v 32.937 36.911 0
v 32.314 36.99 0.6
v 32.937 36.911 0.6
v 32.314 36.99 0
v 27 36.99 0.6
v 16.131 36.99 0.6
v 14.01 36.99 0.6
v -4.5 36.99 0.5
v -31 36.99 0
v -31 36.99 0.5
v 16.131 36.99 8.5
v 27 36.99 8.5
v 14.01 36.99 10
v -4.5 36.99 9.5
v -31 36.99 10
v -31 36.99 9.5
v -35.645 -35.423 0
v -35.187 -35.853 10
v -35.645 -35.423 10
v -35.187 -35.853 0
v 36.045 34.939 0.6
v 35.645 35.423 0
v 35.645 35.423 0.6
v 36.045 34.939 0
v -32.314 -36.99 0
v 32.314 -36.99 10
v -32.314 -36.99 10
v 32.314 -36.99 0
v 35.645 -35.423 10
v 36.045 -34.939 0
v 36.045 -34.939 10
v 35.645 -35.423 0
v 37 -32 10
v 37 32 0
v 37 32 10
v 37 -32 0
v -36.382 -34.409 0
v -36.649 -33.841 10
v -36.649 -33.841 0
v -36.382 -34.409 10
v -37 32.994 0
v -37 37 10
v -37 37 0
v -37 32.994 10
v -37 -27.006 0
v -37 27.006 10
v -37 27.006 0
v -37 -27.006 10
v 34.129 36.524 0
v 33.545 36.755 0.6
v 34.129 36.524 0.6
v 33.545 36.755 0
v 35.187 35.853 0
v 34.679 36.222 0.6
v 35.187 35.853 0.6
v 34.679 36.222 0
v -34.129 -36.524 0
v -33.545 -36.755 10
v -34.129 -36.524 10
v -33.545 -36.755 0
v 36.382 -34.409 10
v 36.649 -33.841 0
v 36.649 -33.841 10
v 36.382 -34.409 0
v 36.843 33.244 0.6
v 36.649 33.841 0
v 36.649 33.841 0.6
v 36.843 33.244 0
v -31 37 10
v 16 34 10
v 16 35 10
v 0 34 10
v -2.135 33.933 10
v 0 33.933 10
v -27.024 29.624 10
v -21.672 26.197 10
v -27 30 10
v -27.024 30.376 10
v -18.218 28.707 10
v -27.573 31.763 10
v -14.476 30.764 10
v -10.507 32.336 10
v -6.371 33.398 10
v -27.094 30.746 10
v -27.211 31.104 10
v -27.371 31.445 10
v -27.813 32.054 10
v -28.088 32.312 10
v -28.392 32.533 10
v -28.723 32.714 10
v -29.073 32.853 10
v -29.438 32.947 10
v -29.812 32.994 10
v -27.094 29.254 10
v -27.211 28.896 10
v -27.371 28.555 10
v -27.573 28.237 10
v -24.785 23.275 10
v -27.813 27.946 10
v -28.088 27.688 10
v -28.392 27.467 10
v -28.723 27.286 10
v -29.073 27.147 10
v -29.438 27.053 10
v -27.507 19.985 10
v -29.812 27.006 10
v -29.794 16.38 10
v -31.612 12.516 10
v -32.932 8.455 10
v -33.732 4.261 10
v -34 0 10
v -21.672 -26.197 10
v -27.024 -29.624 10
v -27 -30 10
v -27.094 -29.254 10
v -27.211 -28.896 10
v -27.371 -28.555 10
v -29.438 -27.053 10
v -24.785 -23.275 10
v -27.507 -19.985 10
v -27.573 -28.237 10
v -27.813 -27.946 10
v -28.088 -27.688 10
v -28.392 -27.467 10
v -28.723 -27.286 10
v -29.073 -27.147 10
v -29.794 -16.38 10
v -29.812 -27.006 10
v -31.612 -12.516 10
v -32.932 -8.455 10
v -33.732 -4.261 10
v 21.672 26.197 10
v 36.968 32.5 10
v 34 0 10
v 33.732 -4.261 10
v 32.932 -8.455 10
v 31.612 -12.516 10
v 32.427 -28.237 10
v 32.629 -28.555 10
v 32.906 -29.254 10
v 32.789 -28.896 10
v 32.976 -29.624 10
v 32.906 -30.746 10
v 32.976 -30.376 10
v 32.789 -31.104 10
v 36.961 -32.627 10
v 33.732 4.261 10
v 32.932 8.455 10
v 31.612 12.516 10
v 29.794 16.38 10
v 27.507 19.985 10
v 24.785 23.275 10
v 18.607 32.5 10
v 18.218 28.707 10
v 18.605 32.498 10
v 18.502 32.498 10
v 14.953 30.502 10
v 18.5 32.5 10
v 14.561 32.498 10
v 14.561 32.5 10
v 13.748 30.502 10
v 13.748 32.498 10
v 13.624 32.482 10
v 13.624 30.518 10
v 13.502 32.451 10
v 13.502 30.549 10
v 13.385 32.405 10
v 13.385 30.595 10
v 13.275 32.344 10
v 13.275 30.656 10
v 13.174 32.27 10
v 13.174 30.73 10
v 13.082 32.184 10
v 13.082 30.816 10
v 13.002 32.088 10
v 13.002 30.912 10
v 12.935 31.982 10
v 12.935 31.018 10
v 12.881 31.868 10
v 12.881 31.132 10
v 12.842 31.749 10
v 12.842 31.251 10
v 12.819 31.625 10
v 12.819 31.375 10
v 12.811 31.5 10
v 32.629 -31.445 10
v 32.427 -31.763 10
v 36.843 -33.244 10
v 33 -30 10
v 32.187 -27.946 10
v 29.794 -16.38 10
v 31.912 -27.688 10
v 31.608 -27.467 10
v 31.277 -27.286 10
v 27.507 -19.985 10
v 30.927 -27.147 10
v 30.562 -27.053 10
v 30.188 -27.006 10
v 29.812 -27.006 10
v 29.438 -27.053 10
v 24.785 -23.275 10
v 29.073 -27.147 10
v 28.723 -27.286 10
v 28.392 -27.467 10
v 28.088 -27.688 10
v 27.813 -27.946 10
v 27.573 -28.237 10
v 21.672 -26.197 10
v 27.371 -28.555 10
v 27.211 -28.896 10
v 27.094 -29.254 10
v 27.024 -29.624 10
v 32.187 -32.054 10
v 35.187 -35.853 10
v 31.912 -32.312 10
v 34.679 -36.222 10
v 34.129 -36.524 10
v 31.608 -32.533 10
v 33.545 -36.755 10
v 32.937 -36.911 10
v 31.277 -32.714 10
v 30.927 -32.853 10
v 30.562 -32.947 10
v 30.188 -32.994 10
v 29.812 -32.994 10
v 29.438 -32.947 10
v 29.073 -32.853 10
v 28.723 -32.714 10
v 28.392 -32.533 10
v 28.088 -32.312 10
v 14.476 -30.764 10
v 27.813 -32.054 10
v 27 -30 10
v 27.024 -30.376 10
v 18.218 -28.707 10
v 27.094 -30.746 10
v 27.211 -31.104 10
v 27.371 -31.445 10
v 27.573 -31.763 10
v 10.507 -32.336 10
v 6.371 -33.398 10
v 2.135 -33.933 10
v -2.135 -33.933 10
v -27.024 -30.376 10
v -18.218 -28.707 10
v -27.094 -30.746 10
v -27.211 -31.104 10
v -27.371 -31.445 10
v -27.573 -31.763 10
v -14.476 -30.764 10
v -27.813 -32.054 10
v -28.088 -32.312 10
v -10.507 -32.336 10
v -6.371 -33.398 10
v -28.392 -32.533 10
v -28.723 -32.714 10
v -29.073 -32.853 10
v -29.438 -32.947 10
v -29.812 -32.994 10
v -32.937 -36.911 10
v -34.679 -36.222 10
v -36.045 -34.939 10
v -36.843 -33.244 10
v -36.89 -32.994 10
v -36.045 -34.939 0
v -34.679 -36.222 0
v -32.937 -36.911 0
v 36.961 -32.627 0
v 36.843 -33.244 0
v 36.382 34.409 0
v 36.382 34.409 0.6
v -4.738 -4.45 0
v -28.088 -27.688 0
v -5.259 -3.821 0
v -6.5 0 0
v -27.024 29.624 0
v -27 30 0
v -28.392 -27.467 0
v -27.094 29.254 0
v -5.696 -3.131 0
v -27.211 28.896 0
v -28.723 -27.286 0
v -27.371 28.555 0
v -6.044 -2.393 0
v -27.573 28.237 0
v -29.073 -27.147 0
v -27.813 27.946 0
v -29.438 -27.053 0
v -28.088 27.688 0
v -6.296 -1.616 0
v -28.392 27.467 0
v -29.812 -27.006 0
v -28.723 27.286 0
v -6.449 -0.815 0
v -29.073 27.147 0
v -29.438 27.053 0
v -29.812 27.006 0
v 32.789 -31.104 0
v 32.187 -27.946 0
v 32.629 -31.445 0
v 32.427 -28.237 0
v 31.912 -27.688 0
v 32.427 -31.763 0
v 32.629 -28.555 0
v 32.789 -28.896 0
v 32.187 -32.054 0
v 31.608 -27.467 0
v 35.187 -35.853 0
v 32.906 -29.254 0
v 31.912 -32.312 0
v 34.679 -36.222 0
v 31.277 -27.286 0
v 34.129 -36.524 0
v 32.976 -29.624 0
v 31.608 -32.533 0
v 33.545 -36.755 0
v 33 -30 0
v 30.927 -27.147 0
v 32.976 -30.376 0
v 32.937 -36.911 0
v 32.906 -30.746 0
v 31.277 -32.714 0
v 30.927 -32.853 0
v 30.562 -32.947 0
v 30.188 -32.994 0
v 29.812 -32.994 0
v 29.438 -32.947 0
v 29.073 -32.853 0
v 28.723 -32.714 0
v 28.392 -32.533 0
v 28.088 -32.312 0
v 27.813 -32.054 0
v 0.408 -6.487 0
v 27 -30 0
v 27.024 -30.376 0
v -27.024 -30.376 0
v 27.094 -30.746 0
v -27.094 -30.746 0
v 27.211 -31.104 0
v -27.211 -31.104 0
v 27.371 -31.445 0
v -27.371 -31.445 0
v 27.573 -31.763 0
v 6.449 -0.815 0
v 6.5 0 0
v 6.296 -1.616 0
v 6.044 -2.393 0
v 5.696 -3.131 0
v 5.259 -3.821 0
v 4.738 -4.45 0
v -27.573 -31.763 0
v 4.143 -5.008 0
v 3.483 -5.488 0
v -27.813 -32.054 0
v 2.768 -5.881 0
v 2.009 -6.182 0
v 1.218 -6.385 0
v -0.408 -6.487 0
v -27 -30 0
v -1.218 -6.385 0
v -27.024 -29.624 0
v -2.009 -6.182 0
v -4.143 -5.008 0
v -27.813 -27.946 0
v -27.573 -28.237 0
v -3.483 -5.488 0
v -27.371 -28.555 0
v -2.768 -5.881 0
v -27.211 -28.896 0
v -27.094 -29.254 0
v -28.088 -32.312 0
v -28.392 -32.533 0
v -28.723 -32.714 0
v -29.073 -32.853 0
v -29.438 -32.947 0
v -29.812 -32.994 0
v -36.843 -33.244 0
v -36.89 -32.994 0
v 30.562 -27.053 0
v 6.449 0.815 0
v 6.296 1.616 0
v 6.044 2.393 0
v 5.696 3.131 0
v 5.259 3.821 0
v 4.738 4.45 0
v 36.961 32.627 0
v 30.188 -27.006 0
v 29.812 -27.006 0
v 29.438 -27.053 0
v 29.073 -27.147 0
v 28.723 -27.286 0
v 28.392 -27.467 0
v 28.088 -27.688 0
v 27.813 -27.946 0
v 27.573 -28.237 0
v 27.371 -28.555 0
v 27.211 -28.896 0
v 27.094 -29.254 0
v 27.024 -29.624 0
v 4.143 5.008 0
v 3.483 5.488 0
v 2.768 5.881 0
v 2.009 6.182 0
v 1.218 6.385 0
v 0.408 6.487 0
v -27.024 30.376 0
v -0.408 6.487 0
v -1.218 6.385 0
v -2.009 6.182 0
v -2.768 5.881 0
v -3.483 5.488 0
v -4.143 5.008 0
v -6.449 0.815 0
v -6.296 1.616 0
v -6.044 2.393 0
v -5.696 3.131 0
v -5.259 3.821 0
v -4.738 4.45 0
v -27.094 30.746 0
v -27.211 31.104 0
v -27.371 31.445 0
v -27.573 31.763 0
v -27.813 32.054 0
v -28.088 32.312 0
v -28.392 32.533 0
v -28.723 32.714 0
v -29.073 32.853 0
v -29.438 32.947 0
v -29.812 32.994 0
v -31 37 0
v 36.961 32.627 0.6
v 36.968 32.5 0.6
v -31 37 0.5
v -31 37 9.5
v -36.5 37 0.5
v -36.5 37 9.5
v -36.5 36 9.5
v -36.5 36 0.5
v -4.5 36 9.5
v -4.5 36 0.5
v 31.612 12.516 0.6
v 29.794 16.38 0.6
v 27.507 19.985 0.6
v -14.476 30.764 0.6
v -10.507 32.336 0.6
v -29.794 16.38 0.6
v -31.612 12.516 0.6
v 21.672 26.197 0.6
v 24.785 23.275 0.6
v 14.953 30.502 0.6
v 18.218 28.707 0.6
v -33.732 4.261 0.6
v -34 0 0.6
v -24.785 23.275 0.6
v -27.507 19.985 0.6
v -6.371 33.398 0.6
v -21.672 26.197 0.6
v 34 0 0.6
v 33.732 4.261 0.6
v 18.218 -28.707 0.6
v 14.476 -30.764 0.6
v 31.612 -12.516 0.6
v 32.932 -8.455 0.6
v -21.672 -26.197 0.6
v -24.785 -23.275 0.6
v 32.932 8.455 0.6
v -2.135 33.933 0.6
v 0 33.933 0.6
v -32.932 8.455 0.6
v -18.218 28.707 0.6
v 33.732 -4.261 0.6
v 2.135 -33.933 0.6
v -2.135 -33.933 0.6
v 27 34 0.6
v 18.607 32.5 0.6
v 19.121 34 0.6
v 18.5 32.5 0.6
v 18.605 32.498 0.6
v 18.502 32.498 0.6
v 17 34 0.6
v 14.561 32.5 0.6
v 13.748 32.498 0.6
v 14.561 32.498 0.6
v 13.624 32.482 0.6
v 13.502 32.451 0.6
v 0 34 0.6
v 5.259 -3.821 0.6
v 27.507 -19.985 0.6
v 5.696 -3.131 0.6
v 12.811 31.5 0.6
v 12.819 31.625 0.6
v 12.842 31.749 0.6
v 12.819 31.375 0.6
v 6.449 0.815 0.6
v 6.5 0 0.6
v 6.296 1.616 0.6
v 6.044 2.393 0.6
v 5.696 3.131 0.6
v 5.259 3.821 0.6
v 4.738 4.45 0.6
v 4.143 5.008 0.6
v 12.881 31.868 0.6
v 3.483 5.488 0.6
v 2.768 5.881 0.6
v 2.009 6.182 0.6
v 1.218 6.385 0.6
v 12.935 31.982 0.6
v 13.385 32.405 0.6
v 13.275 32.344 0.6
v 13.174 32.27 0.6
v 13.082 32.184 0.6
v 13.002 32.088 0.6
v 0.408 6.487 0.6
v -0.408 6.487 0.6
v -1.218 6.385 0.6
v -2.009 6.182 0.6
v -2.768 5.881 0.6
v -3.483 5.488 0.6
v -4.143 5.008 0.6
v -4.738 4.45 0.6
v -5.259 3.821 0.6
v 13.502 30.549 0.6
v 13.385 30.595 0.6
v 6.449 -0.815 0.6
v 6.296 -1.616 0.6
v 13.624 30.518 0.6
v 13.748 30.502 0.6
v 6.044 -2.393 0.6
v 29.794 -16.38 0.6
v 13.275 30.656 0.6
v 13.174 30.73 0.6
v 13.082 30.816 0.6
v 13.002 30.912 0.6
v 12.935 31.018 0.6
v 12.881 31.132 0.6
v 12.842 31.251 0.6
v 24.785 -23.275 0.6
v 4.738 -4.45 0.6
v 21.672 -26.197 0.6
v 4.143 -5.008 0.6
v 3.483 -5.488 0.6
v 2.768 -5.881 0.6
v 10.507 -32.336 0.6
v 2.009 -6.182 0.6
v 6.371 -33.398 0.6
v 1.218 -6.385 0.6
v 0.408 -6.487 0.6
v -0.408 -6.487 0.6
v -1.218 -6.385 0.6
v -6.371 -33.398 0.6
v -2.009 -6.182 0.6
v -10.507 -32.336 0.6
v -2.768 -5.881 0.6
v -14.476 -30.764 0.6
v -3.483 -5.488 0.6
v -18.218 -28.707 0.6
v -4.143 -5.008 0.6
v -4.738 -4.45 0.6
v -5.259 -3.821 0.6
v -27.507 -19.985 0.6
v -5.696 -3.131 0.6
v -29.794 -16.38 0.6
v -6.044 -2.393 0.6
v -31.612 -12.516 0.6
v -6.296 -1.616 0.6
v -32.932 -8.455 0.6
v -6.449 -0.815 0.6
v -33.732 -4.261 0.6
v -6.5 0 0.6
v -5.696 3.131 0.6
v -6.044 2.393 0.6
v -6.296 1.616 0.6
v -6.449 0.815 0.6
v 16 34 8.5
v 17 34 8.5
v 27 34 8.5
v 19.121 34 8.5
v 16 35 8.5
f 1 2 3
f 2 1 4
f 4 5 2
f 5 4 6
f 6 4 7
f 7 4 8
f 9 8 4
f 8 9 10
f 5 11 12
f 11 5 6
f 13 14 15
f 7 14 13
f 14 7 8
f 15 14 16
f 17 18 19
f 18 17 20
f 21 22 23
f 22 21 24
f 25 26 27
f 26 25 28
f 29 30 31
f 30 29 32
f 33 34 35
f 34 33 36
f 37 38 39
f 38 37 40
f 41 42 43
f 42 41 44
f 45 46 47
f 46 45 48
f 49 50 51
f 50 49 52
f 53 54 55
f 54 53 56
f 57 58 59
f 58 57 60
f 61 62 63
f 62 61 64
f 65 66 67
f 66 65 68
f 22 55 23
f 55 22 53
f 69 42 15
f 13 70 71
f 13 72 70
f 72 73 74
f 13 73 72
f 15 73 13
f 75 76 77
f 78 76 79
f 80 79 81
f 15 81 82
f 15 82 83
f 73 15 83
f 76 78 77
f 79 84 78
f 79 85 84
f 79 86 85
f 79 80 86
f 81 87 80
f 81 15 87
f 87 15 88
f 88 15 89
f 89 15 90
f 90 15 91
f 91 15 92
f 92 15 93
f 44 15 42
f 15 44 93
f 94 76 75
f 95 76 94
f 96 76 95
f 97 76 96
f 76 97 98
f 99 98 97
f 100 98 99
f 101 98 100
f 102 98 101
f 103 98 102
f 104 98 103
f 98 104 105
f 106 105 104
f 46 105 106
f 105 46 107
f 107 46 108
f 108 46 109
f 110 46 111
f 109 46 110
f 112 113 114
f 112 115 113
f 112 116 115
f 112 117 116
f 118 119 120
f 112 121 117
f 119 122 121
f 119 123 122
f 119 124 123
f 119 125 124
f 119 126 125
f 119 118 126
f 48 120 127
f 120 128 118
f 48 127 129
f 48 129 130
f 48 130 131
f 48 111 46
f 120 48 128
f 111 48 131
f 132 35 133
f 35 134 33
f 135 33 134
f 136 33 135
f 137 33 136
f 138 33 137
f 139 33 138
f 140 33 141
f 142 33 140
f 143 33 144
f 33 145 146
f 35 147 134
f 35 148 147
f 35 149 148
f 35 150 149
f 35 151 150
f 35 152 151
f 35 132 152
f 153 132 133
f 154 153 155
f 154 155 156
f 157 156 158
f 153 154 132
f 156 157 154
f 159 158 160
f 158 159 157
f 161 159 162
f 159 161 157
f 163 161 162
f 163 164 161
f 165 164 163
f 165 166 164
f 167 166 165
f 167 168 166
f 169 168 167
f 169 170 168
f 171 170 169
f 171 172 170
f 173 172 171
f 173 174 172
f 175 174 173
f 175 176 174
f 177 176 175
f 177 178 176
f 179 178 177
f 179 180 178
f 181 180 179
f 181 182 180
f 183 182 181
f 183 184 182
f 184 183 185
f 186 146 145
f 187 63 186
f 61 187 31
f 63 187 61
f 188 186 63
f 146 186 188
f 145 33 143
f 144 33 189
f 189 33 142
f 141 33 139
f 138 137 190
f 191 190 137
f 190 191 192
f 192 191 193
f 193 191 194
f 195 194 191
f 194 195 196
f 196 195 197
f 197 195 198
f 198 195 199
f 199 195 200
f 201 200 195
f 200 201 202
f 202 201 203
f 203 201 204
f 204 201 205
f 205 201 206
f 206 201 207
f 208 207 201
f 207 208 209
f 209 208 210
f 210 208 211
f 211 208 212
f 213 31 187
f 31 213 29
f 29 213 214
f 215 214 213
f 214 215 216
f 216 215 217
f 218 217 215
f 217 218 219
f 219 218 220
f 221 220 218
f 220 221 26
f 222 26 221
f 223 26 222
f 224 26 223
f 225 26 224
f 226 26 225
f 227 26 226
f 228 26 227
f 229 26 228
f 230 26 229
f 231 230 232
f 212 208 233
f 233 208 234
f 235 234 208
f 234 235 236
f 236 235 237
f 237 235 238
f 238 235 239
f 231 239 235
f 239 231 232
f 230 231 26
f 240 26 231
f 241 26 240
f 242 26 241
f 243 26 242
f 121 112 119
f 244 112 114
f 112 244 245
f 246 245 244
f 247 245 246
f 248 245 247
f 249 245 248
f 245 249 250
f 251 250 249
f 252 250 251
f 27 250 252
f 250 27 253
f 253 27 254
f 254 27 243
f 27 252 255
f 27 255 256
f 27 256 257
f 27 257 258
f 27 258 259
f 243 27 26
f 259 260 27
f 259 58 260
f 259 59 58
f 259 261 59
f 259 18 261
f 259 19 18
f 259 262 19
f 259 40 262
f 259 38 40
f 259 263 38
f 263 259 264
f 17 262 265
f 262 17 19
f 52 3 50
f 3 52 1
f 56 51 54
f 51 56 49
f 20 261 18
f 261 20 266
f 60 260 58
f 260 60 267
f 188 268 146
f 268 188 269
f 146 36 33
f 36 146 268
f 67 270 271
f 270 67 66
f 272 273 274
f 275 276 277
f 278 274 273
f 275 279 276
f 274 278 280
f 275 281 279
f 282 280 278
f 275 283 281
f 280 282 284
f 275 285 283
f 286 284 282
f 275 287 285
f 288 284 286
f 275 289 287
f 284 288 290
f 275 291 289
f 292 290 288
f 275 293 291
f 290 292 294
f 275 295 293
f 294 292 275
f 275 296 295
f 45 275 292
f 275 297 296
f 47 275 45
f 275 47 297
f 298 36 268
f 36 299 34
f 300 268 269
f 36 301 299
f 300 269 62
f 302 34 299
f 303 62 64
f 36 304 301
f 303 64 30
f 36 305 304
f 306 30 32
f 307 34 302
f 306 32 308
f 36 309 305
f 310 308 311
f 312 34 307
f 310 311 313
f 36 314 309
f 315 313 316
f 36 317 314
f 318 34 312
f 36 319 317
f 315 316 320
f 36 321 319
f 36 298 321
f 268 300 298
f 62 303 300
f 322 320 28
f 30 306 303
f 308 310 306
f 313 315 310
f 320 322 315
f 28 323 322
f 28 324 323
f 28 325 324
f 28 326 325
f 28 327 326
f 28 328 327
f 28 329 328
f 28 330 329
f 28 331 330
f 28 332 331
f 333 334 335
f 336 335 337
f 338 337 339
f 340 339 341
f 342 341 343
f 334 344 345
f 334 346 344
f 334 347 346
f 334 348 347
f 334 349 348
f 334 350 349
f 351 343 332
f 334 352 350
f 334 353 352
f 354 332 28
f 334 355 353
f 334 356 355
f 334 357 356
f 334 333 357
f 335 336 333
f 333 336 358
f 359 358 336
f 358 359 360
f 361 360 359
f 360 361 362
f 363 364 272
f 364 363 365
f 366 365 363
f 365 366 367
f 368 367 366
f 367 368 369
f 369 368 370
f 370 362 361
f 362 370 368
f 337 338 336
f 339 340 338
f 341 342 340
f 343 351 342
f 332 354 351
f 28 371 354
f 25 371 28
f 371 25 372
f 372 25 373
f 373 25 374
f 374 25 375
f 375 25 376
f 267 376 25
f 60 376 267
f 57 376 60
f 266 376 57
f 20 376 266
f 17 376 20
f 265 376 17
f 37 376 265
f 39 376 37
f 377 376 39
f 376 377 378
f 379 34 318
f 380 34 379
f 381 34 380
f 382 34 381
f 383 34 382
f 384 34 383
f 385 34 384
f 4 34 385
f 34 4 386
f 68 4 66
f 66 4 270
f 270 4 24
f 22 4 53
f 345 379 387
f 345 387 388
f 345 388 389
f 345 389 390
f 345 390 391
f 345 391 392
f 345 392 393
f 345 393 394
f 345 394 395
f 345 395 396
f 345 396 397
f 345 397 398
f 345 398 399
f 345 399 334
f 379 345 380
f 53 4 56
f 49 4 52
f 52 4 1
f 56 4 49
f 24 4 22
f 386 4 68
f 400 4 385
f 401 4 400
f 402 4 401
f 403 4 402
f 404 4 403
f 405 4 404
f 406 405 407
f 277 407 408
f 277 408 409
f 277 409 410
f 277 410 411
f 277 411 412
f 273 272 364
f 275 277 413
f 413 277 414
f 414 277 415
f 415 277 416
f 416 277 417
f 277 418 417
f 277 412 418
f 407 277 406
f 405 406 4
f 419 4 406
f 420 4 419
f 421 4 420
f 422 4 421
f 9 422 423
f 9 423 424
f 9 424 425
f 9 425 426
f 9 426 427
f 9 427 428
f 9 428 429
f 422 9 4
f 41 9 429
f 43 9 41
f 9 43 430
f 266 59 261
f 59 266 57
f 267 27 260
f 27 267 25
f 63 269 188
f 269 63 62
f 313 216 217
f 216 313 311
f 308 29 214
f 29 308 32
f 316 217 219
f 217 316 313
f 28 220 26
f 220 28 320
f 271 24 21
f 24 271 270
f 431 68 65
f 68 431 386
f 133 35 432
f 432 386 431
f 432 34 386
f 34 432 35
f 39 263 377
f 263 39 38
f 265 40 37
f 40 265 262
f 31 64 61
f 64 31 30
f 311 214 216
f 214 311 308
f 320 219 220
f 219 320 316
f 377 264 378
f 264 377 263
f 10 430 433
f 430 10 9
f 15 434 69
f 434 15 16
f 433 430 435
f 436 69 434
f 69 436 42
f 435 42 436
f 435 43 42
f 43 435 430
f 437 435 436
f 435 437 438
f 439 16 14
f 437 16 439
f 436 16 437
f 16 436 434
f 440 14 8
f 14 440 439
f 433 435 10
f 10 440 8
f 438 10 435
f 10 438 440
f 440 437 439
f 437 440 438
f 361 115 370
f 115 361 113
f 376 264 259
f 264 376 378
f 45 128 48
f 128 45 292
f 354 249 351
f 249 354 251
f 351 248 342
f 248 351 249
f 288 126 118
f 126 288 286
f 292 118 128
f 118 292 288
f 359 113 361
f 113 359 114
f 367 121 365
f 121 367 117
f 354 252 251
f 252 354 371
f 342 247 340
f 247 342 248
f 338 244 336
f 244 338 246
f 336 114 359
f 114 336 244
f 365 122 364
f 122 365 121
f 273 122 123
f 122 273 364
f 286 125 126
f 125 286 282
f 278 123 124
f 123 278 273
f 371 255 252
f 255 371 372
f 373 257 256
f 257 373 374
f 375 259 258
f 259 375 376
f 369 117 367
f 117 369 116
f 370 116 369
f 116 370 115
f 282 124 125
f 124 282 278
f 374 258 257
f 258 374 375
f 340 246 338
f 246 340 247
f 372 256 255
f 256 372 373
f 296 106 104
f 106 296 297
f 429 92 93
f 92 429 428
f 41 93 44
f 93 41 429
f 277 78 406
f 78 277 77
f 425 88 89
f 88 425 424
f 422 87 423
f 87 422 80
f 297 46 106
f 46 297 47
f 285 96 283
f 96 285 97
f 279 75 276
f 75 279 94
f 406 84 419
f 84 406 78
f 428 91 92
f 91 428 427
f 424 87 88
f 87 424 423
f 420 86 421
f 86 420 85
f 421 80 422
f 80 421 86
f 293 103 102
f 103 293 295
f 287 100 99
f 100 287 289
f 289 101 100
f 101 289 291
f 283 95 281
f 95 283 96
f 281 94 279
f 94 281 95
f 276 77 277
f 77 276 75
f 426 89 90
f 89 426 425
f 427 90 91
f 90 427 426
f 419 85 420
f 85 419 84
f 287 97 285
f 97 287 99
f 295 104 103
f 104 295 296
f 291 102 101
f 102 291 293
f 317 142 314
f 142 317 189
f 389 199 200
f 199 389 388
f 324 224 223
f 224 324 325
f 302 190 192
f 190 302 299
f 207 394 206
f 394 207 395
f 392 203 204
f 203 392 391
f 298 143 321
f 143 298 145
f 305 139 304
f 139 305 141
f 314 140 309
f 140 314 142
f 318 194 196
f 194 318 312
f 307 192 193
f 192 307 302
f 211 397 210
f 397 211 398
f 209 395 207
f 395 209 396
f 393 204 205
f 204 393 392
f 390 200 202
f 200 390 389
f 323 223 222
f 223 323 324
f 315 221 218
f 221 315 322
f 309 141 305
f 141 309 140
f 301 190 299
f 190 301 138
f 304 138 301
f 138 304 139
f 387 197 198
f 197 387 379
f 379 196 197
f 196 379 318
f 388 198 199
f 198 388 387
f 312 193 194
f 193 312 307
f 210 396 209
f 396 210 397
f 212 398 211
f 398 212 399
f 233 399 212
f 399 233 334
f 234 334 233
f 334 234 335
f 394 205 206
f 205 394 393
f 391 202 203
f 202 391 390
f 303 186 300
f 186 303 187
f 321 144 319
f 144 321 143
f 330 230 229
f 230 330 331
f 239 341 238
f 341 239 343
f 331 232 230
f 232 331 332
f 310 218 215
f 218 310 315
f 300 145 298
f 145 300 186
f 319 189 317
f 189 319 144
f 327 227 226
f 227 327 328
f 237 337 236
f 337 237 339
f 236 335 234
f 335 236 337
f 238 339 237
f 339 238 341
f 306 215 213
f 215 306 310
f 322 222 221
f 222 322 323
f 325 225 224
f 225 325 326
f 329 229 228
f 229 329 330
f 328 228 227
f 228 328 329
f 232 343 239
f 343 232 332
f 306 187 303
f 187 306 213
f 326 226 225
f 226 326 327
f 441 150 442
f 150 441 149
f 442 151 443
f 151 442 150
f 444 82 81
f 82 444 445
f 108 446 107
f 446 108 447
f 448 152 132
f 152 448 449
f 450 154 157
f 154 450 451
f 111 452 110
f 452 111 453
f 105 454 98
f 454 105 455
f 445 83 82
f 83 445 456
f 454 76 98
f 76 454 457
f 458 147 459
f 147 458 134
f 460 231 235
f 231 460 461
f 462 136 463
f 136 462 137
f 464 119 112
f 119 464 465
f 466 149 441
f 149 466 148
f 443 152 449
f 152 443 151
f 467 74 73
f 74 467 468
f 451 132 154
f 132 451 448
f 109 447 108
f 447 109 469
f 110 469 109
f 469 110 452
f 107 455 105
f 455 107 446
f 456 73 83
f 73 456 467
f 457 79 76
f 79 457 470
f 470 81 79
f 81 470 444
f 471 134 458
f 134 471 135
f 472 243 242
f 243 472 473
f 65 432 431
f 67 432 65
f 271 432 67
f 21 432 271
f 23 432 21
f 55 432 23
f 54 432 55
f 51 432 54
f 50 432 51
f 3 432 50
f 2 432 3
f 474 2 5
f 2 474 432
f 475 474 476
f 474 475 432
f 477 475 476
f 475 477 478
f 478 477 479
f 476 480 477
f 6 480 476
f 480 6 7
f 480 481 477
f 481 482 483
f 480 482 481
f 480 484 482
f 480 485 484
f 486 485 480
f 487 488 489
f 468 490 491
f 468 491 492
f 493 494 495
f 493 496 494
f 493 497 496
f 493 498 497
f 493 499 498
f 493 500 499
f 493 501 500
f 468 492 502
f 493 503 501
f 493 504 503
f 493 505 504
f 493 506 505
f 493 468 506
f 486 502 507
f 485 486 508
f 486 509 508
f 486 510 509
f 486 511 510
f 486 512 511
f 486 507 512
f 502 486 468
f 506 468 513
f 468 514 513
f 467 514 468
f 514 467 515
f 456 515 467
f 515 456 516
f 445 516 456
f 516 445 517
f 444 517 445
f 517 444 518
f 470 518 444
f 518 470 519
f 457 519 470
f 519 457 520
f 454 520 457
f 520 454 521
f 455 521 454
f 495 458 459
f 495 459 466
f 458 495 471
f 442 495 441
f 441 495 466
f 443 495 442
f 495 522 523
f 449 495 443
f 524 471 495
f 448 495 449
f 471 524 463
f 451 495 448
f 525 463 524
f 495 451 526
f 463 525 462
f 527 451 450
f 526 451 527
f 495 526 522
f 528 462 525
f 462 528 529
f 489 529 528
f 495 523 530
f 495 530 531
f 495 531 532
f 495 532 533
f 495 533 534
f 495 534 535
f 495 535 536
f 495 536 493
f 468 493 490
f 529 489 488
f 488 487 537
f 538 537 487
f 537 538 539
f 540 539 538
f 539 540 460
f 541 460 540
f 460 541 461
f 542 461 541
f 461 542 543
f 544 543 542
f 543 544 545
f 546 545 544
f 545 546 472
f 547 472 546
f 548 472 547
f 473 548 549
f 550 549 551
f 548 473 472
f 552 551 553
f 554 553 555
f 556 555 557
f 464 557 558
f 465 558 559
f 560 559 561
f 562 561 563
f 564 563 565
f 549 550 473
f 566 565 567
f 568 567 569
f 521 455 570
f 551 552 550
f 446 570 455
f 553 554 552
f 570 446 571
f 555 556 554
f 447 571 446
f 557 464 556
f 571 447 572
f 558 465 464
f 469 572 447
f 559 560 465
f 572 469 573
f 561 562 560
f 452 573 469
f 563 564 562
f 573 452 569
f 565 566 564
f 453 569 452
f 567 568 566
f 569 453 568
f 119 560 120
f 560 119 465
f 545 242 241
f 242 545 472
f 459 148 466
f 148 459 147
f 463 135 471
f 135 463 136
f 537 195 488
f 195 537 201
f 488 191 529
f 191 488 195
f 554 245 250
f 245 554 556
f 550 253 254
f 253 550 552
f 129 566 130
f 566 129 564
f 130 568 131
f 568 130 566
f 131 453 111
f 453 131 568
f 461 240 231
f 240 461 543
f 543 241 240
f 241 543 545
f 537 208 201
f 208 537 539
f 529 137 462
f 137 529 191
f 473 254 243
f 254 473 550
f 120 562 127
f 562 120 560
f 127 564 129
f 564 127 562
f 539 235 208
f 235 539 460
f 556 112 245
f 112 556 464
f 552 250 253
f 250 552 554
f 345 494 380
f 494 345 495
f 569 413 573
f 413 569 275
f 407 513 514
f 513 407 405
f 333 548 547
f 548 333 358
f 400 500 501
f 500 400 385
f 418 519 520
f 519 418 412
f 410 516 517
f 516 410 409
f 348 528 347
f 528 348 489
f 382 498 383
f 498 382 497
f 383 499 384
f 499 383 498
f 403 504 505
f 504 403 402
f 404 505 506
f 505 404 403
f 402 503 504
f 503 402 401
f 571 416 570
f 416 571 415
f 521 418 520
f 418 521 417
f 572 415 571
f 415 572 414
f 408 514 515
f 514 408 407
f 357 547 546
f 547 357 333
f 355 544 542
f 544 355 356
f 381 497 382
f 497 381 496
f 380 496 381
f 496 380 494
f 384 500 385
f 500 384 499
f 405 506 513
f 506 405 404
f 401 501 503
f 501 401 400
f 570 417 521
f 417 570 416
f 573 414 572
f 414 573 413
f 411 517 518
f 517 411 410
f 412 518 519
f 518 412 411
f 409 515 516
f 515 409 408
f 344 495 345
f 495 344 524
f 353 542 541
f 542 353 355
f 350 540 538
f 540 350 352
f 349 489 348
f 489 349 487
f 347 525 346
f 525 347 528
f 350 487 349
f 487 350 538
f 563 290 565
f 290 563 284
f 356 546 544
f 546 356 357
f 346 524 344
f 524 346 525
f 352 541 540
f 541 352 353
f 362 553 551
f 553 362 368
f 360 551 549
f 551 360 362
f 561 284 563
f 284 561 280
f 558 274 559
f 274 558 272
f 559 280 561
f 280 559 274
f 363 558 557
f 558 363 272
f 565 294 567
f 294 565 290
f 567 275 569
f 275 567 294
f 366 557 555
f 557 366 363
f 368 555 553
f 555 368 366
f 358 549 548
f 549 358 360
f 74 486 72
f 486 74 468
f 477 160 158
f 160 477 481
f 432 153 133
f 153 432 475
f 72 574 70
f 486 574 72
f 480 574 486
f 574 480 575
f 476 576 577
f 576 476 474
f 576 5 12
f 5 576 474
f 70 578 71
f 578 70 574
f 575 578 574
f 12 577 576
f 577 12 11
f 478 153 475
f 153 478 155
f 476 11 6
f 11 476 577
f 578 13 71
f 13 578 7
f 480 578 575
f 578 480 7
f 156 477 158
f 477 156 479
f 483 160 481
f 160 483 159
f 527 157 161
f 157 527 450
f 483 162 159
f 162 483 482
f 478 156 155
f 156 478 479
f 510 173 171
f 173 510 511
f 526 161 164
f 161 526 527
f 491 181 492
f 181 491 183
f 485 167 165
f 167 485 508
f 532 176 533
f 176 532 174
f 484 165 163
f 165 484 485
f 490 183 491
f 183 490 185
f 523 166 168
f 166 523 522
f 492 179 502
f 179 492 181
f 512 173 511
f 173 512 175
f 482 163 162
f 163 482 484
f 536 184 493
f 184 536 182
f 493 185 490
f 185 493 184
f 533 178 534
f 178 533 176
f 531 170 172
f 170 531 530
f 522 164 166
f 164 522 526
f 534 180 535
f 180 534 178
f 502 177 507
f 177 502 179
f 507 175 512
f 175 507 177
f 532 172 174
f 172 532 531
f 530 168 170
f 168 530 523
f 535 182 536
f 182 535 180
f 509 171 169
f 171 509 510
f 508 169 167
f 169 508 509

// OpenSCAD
$fn = 50;


union() {
	difference() {
		union() {
			translate(v = [0, 0, 0]) {
				rotate(a = [0, 0, 0]) {
					hull() {
						translate(v = [-32.0000000000, 32.0000000000, 0]) {
							rotate(a = [0, 0, 0]) {
								translate(v = [0, 0, 0]) {
									rotate(a = [0, 0, 0]) {
										cylinder(h = 10, r = 5);
									}
								}
							}
						}
						translate(v = [32.0000000000, 32.0000000000, 0]) {
							rotate(a = [0, 0, 0]) {
								translate(v = [0, 0, 0]) {
									rotate(a = [0, 0, 0]) {
										cylinder(h = 10, r = 5);
									}
								}
							}
						}
						translate(v = [-32.0000000000, -32.0000000000, 0]) {
							rotate(a = [0, 0, 0]) {
								translate(v = [0, 0, 0]) {
									rotate(a = [0, 0, 0]) {
										cylinder(h = 10, r = 5);
									}
								}
							}
						}
						translate(v = [32.0000000000, -32.0000000000, 0]) {
							rotate(a = [0, 0, 0]) {
								translate(v = [0, 0, 0]) {
									rotate(a = [0, 0, 0]) {
										cylinder(h = 10, r = 5);
									}
								}
							}
						}
					}
				}
			}
			translate(v = [-37.0000000000, 31.0000000000, 0]) {
				rotate(a = [0, 0, 0]) {
					cube(size = [6, 6, 10]);
				}
			}
		}
		union() {
			#translate(v = [-36.5000000000, 36.0000000000, 0.5000000000]) {
				rotate(a = [0, 0, 0]) {
					cube(size = [32, 1, 9.0000000000]);
				}
			}
			translate(v = [-37.5000000000, -30.0000000000, -125]) {
				rotate(a = [0, 0, 0]) {
					hull() {
						translate(v = [7.5000000000, 0, 0]) {
							rotate(a = [0, 0, 0]) {
								translate(v = [0, 0, 0]) {
									rotate(a = [0, 0, 0]) {
										cylinder(h = 250, r = 3.0000000000);
									}
								}
							}
						}
						translate(v = [-7.5000000000, 0, 0]) {
							rotate(a = [0, 0, 0]) {
								translate(v = [0, 0, 0]) {
									rotate(a = [0, 0, 0]) {
										cylinder(h = 250, r = 3.0000000000);
									}
								}
							}
						}
					}
				}
			}
			translate(v = [-37.5000000000, 30.0000000000, -125]) {
				rotate(a = [0, 0, 0]) {
					hull() {
						translate(v = [7.5000000000, 0, 0]) {
							rotate(a = [0, 0, 0]) {
								translate(v = [0, 0, 0]) {
									rotate(a = [0, 0, 0]) {
										cylinder(h = 250, r = 3.0000000000);
									}
								}
							}
						}
						translate(v = [-7.5000000000, 0, 0]) {
							rotate(a = [0, 0, 0]) {
								translate(v = [0, 0, 0]) {
									rotate(a = [0, 0, 0]) {
										cylinder(h = 250, r = 3.0000000000);
									}
								}
							}
						}
					}
				}
			}
			translate(v = [30.0000000000, -30.0000000000, -125.0000000000]) {
				rotate(a = [0, 0, 0]) {
					cylinder(h = 250, r = 3.0000000000);
				}
			}
			translate(v = [0, 0, 0.6000000000]) {
				rotate(a = [0, 0, 0]) {
					cylinder(h = 12.4000000000, r = 34.0000000000);
				}
			}
			translate(v = [0, 0, -5.0000000000]) {
				rotate(a = [0, 0, 0]) {
					cylinder(h = 10, r = 6.5000000000);
				}
			}
			translate(v = [0.0000000000, 32.5000000000, 0.6000000000]) {
				rotate(a = [0, 0, 0]) {
					cube(size = [37.0000000000, 1.5000000000, 12.4000000000]);
				}
			}
			translate(v = [27.0000000000, 32.5000000000, 0.6000000000]) {
				rotate(a = [0, 0, 0]) {
					cube(size = [10, 4.5000000000, 12.4000000000]);
				}
			}
			translate(v = [16.0000000000, 32.5000000000, 8.5000000000]) {
				rotate(a = [0, 0, 0]) {
					cube(size = [21, 4.5000000000, 1.5000000000]);
				}
			}
			translate(v = [13.2500000000, 37.7500000000, 0.6000000000]) {
				rotate(a = [0, 0, -45]) {
					cube(size = [7.5000000000, 1.5000000000, 12.4000000000]);
				}
			}
			translate(v = [7.0610000000, 30.5000000000, 0.6000000000]) {
				rotate(a = [0, 0, 0]) {
					cube(size = [7.5000000000, 2, 9.4000000000]);
				}
			}
		}
	}
	union() {
		translate(v = [16.3110000000, 31.5000000000, 0]) {
			rotate(a = [0, 0, 0]) {
				hull() {
					translate(v = [2.5000000000, 0, 0]) {
						rotate(a = [0, 0, 0]) {
							#translate(v = [0, 0, 0]) {
								rotate(a = [0, 0, 0]) {
									cylinder(h = 10, r = 1.0000000000);
								}
							}
						}
					}
					translate(v = [-2.5000000000, 0, 0]) {
						rotate(a = [0, 0, 0]) {
							#translate(v = [0, 0, 0]) {
								rotate(a = [0, 0, 0]) {
									cylinder(h = 10, r = 1.0000000000);
								}
							}
						}
					}
				}
			}
		}
	}
}
